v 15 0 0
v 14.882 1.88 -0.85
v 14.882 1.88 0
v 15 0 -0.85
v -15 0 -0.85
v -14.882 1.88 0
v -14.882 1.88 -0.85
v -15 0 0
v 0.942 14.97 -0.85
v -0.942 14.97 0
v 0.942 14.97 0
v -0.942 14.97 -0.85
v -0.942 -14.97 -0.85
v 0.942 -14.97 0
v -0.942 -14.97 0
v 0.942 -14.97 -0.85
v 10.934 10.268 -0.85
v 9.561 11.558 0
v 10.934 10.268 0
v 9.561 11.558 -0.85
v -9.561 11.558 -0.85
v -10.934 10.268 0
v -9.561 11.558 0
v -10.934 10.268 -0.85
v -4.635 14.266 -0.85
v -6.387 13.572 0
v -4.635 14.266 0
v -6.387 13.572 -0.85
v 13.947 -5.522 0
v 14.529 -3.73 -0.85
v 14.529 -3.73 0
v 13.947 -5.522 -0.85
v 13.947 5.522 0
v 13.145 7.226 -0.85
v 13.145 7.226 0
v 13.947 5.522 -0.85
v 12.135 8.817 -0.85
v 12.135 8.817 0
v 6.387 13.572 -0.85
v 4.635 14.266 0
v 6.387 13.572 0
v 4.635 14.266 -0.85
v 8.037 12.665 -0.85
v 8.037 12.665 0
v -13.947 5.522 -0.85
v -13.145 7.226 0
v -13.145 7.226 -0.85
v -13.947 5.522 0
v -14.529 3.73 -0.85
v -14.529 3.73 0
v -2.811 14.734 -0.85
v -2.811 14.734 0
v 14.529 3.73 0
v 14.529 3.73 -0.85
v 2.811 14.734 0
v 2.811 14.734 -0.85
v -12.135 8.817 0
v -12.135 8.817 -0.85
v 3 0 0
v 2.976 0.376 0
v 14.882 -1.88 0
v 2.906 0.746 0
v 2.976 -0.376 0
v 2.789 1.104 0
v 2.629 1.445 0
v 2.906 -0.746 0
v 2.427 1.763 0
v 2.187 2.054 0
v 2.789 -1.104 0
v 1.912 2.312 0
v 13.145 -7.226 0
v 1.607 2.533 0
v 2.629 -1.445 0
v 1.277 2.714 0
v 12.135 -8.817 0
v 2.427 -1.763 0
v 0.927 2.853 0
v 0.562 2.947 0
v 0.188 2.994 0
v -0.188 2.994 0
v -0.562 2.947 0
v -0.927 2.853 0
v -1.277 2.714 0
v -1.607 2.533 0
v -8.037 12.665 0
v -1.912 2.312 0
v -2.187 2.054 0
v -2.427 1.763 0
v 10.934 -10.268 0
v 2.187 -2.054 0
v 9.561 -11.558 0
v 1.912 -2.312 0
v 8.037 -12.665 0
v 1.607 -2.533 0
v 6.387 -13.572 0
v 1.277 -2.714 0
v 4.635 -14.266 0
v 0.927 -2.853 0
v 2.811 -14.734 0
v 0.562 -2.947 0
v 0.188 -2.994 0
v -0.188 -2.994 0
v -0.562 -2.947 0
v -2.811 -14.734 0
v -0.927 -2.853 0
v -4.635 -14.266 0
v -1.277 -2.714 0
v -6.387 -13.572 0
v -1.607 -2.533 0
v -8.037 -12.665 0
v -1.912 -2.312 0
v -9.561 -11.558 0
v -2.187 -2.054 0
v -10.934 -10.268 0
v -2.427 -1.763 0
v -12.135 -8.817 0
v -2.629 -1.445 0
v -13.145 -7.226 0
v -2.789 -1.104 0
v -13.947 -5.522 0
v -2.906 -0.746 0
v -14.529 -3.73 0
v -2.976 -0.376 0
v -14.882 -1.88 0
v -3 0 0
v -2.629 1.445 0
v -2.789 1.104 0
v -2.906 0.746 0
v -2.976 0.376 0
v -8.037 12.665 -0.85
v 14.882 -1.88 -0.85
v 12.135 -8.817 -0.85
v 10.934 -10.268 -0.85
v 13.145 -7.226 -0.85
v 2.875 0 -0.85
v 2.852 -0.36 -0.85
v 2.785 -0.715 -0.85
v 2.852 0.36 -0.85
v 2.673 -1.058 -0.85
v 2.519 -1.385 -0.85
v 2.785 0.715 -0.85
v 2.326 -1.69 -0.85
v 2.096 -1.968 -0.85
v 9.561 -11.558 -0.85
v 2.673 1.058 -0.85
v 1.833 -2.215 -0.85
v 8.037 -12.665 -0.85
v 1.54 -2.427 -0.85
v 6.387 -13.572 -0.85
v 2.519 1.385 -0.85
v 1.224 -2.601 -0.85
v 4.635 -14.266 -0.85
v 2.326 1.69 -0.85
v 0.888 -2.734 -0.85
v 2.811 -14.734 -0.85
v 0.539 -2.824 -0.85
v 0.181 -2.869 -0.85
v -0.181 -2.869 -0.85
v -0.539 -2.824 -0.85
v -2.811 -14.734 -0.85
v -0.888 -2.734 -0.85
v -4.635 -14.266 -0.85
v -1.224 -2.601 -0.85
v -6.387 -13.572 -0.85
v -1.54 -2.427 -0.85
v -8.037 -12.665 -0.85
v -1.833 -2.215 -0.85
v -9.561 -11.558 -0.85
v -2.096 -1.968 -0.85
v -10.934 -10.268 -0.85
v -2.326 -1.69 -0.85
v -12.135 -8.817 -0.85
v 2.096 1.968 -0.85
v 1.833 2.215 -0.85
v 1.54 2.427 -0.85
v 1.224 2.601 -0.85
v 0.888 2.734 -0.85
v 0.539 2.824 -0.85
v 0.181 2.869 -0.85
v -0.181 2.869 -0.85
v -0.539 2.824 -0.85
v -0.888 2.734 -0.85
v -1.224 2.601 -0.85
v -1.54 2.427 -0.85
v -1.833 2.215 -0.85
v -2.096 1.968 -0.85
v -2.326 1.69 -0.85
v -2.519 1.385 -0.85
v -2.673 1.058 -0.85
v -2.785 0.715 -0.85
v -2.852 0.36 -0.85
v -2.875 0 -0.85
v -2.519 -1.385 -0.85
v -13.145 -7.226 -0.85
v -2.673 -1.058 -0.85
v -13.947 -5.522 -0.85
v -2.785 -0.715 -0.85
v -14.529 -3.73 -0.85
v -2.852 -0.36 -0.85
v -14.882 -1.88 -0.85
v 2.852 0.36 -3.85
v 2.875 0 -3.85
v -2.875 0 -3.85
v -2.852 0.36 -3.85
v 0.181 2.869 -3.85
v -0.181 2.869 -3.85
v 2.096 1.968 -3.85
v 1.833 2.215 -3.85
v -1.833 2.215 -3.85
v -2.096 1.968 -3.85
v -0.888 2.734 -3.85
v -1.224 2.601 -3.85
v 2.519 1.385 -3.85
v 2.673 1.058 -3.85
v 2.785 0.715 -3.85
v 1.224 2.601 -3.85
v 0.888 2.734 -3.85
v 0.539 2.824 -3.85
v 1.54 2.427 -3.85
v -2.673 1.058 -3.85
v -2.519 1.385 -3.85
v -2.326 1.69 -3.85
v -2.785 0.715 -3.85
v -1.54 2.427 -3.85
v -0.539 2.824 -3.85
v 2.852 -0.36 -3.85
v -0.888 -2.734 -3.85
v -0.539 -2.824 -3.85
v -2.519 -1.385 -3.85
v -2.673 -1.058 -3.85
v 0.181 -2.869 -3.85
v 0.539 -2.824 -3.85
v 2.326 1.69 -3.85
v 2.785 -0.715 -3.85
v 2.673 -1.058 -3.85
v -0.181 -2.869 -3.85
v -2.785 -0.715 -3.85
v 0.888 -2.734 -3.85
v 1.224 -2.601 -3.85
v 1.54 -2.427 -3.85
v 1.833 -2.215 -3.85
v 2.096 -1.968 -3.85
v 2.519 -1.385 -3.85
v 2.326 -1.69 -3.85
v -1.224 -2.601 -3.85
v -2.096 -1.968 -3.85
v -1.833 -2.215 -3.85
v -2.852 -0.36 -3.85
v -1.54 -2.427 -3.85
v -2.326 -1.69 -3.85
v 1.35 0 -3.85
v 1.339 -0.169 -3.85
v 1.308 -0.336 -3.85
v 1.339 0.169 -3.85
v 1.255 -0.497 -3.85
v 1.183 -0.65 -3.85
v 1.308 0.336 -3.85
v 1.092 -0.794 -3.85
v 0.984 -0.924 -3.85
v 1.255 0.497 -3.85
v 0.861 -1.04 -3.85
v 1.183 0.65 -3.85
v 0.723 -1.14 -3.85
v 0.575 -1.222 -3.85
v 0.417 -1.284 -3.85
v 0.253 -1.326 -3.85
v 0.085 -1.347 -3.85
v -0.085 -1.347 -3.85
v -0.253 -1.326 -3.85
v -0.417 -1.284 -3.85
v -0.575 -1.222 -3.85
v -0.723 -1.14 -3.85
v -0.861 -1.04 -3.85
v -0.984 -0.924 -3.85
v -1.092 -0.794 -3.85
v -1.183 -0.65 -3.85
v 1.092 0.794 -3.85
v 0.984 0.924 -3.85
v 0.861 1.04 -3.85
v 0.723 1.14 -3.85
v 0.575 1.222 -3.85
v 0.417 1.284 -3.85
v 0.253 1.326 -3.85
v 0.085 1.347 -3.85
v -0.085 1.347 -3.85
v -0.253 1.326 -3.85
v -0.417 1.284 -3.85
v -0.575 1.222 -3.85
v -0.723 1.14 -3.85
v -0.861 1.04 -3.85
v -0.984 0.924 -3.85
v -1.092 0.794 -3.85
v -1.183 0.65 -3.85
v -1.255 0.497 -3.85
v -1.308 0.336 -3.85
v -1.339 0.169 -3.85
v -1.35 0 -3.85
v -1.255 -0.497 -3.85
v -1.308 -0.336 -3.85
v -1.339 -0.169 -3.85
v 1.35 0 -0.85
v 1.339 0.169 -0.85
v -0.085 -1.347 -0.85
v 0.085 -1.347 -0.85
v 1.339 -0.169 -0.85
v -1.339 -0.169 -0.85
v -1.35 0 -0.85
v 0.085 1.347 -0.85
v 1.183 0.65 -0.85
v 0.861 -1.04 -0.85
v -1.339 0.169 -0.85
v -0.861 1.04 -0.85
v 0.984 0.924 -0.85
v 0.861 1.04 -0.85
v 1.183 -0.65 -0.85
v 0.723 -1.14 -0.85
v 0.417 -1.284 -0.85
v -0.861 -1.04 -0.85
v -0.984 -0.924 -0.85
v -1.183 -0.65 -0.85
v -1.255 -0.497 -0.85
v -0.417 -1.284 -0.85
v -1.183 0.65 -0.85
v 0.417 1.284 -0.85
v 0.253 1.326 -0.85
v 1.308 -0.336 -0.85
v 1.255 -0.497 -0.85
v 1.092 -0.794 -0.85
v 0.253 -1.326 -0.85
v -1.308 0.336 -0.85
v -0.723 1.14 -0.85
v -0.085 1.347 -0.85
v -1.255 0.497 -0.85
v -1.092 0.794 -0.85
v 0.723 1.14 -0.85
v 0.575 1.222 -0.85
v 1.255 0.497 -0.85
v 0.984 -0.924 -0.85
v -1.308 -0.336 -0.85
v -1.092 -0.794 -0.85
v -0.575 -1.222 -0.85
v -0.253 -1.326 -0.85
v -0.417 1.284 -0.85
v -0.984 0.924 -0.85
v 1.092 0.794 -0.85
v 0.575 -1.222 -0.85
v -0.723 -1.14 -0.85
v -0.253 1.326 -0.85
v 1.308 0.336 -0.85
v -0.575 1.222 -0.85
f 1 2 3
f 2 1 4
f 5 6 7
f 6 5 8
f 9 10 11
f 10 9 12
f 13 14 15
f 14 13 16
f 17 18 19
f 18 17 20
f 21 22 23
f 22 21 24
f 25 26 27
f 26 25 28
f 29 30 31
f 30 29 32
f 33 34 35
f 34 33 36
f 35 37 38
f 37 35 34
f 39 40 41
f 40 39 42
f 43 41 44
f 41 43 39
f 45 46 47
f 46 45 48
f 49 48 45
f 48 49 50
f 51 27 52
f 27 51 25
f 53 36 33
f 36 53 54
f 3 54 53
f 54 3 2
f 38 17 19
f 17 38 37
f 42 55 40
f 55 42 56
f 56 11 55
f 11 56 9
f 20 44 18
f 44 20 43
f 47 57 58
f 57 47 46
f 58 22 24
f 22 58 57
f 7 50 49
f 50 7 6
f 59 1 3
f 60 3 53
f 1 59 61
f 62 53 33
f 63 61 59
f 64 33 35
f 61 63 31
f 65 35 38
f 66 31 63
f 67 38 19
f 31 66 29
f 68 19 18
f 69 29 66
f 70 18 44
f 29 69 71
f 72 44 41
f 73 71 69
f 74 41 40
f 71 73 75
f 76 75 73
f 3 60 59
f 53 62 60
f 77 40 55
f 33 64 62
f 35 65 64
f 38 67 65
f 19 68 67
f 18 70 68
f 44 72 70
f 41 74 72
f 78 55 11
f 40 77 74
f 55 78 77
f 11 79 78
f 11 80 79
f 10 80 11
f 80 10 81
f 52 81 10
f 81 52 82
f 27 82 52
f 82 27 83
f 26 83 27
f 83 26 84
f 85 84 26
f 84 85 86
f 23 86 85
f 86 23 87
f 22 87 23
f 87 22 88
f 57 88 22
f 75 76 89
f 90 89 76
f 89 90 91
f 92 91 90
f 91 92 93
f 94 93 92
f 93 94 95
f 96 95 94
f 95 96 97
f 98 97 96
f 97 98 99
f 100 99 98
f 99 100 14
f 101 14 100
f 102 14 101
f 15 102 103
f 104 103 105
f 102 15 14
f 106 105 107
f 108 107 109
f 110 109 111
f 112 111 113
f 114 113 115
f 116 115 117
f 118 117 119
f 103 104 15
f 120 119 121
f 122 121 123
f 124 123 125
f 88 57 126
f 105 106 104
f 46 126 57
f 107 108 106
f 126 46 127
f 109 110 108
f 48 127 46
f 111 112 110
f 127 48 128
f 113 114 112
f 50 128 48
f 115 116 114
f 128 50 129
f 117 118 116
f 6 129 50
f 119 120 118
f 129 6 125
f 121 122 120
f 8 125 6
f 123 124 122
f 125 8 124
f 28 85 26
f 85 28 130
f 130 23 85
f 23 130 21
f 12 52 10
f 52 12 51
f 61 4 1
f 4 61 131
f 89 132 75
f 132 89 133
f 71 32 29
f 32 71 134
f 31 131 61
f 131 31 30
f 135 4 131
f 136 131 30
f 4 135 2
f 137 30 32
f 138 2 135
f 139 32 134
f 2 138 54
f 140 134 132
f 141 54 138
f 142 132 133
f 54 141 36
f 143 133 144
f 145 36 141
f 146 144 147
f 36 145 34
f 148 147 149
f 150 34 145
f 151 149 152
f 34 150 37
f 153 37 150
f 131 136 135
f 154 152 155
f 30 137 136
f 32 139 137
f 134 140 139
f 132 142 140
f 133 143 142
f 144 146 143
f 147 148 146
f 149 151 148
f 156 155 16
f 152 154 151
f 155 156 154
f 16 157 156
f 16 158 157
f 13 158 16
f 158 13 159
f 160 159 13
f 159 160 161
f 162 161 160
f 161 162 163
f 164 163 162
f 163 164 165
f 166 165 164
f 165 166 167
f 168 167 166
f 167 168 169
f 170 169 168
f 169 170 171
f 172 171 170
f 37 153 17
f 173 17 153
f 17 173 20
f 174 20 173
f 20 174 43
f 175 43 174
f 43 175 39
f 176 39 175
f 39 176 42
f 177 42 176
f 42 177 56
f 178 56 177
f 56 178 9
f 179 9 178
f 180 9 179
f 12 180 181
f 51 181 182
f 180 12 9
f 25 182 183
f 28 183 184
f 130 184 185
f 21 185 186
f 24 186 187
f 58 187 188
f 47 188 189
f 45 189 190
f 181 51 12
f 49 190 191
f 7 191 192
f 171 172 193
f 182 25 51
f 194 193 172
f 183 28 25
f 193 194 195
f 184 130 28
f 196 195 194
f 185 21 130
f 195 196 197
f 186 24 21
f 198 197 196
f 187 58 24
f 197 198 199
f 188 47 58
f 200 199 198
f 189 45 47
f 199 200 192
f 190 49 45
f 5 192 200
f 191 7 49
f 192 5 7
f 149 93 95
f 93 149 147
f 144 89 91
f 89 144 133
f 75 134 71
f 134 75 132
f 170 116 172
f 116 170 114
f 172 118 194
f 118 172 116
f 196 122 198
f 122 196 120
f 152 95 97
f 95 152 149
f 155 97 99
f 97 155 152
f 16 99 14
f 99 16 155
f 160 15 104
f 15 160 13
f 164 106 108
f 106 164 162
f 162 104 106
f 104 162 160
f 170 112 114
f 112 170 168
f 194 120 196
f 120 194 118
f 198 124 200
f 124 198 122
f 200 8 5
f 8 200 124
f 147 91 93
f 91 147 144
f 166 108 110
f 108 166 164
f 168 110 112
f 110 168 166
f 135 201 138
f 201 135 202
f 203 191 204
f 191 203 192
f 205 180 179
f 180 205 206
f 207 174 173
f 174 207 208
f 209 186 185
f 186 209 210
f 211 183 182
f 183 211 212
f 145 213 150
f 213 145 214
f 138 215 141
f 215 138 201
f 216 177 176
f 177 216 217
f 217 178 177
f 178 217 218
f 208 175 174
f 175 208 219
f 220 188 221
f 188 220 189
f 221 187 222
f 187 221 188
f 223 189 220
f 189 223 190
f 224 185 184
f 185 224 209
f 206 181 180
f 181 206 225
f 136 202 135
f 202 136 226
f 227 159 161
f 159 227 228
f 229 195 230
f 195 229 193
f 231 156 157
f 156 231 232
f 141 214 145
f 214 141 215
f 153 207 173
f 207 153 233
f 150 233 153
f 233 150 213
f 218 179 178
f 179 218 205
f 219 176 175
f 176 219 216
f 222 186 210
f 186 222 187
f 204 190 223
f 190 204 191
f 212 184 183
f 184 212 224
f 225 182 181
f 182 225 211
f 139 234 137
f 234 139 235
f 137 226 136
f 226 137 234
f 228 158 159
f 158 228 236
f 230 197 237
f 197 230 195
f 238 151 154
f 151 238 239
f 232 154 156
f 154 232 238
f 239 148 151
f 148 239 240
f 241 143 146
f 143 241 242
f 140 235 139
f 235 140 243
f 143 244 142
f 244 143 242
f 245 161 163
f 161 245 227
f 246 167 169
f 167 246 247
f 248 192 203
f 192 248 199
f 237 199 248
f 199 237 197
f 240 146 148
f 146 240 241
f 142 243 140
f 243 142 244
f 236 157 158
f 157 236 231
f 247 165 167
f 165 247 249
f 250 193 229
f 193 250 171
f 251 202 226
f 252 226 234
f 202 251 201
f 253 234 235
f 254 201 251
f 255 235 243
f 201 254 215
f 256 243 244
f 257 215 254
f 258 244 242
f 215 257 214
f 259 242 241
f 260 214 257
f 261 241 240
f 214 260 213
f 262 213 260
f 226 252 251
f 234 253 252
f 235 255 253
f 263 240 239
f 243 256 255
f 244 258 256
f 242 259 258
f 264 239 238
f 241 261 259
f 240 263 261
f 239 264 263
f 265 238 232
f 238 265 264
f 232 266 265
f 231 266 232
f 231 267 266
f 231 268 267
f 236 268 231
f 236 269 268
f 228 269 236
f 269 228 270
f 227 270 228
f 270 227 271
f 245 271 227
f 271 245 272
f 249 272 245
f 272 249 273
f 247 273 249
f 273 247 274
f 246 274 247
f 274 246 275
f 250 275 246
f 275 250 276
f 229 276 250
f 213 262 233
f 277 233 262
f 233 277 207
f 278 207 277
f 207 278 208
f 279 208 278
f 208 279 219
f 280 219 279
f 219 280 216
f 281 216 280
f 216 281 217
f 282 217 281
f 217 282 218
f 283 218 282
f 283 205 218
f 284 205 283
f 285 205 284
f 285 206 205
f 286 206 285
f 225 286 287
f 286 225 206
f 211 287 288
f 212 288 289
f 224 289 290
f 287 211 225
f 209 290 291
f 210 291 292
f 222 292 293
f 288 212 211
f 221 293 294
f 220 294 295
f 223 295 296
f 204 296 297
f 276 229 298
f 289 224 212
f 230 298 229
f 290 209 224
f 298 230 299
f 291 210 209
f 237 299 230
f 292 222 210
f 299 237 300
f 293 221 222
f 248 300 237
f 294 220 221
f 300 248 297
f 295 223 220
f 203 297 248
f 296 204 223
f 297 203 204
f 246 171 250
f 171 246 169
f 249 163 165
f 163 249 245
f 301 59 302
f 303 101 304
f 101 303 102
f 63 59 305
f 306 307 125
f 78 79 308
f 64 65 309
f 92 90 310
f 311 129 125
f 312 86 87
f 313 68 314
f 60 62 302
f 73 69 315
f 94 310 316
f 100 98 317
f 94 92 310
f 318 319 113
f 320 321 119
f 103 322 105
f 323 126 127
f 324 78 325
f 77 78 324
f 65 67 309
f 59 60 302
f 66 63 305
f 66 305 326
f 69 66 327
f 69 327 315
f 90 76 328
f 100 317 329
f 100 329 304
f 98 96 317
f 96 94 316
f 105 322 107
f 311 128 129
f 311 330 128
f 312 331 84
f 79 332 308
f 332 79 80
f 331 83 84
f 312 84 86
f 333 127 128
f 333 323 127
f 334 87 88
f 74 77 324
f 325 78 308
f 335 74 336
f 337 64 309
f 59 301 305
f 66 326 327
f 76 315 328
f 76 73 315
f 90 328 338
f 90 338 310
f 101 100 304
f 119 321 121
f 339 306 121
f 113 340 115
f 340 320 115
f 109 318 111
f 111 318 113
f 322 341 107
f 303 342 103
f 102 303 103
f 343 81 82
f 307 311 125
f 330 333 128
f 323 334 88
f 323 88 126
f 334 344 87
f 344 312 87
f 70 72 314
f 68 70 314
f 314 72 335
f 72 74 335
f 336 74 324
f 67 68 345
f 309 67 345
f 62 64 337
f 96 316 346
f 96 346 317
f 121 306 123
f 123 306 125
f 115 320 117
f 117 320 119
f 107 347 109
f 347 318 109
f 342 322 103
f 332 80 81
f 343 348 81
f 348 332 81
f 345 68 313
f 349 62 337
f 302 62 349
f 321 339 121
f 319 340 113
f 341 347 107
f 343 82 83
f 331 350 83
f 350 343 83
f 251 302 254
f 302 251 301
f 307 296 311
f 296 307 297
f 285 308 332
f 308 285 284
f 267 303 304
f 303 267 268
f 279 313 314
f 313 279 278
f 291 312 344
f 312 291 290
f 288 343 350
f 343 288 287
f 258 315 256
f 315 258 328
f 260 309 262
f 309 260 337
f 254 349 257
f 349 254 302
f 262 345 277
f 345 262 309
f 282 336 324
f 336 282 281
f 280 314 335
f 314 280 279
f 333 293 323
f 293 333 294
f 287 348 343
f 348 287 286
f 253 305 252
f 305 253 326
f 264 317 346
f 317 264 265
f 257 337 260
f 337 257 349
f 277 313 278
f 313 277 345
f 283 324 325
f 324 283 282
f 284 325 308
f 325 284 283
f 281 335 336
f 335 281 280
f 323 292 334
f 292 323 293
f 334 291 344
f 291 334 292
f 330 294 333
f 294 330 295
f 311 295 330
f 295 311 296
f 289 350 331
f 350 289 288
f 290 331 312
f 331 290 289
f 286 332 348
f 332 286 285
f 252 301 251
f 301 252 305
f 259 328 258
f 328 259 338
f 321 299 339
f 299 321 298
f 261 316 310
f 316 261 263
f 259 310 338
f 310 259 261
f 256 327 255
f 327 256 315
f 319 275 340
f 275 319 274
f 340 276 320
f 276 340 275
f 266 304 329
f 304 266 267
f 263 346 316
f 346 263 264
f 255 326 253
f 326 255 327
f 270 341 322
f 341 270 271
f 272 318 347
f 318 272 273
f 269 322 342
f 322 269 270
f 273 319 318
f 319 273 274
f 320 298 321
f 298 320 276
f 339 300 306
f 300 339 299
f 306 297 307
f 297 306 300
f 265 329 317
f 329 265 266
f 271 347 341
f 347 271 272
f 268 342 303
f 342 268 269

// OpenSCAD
$fn = 50;


difference() {
	union() {
		translate(v = [0, 0, -0.8500000000]) {
			cylinder(h = 0.8500000000, r = 15.0000000000);
		}
		#translate(v = [0, 0, -3.8500000000]) {
			cylinder(h = 3.8500000000, r = 2.8750000000);
		}
	}
	union() {
		translate(v = [0, 0, 0]) {
			rotate(a = [0, 0, 0]) {
				difference() {
					union() {
						translate(v = [0, 0, -3.8500000000]) {
							cylinder(h = 3.8500000000, r = 1.0000000000);
						}
						translate(v = [0, 0, -0.8500000000]) {
							cylinder(h = 0.8500000000, r1 = 1.3500000000, r2 = 3.0000000000);
						}
						translate(v = [0, 0, -3.8500000000]) {
							cylinder(h = 3.8500000000, r = 1.3500000000);
						}
						translate(v = [0, 0, -3.8500000000]) {
							cylinder(h = 3.8500000000, r = 1.0000000000);
						}
					}
					union();
				}
			}
		}
	}
}
